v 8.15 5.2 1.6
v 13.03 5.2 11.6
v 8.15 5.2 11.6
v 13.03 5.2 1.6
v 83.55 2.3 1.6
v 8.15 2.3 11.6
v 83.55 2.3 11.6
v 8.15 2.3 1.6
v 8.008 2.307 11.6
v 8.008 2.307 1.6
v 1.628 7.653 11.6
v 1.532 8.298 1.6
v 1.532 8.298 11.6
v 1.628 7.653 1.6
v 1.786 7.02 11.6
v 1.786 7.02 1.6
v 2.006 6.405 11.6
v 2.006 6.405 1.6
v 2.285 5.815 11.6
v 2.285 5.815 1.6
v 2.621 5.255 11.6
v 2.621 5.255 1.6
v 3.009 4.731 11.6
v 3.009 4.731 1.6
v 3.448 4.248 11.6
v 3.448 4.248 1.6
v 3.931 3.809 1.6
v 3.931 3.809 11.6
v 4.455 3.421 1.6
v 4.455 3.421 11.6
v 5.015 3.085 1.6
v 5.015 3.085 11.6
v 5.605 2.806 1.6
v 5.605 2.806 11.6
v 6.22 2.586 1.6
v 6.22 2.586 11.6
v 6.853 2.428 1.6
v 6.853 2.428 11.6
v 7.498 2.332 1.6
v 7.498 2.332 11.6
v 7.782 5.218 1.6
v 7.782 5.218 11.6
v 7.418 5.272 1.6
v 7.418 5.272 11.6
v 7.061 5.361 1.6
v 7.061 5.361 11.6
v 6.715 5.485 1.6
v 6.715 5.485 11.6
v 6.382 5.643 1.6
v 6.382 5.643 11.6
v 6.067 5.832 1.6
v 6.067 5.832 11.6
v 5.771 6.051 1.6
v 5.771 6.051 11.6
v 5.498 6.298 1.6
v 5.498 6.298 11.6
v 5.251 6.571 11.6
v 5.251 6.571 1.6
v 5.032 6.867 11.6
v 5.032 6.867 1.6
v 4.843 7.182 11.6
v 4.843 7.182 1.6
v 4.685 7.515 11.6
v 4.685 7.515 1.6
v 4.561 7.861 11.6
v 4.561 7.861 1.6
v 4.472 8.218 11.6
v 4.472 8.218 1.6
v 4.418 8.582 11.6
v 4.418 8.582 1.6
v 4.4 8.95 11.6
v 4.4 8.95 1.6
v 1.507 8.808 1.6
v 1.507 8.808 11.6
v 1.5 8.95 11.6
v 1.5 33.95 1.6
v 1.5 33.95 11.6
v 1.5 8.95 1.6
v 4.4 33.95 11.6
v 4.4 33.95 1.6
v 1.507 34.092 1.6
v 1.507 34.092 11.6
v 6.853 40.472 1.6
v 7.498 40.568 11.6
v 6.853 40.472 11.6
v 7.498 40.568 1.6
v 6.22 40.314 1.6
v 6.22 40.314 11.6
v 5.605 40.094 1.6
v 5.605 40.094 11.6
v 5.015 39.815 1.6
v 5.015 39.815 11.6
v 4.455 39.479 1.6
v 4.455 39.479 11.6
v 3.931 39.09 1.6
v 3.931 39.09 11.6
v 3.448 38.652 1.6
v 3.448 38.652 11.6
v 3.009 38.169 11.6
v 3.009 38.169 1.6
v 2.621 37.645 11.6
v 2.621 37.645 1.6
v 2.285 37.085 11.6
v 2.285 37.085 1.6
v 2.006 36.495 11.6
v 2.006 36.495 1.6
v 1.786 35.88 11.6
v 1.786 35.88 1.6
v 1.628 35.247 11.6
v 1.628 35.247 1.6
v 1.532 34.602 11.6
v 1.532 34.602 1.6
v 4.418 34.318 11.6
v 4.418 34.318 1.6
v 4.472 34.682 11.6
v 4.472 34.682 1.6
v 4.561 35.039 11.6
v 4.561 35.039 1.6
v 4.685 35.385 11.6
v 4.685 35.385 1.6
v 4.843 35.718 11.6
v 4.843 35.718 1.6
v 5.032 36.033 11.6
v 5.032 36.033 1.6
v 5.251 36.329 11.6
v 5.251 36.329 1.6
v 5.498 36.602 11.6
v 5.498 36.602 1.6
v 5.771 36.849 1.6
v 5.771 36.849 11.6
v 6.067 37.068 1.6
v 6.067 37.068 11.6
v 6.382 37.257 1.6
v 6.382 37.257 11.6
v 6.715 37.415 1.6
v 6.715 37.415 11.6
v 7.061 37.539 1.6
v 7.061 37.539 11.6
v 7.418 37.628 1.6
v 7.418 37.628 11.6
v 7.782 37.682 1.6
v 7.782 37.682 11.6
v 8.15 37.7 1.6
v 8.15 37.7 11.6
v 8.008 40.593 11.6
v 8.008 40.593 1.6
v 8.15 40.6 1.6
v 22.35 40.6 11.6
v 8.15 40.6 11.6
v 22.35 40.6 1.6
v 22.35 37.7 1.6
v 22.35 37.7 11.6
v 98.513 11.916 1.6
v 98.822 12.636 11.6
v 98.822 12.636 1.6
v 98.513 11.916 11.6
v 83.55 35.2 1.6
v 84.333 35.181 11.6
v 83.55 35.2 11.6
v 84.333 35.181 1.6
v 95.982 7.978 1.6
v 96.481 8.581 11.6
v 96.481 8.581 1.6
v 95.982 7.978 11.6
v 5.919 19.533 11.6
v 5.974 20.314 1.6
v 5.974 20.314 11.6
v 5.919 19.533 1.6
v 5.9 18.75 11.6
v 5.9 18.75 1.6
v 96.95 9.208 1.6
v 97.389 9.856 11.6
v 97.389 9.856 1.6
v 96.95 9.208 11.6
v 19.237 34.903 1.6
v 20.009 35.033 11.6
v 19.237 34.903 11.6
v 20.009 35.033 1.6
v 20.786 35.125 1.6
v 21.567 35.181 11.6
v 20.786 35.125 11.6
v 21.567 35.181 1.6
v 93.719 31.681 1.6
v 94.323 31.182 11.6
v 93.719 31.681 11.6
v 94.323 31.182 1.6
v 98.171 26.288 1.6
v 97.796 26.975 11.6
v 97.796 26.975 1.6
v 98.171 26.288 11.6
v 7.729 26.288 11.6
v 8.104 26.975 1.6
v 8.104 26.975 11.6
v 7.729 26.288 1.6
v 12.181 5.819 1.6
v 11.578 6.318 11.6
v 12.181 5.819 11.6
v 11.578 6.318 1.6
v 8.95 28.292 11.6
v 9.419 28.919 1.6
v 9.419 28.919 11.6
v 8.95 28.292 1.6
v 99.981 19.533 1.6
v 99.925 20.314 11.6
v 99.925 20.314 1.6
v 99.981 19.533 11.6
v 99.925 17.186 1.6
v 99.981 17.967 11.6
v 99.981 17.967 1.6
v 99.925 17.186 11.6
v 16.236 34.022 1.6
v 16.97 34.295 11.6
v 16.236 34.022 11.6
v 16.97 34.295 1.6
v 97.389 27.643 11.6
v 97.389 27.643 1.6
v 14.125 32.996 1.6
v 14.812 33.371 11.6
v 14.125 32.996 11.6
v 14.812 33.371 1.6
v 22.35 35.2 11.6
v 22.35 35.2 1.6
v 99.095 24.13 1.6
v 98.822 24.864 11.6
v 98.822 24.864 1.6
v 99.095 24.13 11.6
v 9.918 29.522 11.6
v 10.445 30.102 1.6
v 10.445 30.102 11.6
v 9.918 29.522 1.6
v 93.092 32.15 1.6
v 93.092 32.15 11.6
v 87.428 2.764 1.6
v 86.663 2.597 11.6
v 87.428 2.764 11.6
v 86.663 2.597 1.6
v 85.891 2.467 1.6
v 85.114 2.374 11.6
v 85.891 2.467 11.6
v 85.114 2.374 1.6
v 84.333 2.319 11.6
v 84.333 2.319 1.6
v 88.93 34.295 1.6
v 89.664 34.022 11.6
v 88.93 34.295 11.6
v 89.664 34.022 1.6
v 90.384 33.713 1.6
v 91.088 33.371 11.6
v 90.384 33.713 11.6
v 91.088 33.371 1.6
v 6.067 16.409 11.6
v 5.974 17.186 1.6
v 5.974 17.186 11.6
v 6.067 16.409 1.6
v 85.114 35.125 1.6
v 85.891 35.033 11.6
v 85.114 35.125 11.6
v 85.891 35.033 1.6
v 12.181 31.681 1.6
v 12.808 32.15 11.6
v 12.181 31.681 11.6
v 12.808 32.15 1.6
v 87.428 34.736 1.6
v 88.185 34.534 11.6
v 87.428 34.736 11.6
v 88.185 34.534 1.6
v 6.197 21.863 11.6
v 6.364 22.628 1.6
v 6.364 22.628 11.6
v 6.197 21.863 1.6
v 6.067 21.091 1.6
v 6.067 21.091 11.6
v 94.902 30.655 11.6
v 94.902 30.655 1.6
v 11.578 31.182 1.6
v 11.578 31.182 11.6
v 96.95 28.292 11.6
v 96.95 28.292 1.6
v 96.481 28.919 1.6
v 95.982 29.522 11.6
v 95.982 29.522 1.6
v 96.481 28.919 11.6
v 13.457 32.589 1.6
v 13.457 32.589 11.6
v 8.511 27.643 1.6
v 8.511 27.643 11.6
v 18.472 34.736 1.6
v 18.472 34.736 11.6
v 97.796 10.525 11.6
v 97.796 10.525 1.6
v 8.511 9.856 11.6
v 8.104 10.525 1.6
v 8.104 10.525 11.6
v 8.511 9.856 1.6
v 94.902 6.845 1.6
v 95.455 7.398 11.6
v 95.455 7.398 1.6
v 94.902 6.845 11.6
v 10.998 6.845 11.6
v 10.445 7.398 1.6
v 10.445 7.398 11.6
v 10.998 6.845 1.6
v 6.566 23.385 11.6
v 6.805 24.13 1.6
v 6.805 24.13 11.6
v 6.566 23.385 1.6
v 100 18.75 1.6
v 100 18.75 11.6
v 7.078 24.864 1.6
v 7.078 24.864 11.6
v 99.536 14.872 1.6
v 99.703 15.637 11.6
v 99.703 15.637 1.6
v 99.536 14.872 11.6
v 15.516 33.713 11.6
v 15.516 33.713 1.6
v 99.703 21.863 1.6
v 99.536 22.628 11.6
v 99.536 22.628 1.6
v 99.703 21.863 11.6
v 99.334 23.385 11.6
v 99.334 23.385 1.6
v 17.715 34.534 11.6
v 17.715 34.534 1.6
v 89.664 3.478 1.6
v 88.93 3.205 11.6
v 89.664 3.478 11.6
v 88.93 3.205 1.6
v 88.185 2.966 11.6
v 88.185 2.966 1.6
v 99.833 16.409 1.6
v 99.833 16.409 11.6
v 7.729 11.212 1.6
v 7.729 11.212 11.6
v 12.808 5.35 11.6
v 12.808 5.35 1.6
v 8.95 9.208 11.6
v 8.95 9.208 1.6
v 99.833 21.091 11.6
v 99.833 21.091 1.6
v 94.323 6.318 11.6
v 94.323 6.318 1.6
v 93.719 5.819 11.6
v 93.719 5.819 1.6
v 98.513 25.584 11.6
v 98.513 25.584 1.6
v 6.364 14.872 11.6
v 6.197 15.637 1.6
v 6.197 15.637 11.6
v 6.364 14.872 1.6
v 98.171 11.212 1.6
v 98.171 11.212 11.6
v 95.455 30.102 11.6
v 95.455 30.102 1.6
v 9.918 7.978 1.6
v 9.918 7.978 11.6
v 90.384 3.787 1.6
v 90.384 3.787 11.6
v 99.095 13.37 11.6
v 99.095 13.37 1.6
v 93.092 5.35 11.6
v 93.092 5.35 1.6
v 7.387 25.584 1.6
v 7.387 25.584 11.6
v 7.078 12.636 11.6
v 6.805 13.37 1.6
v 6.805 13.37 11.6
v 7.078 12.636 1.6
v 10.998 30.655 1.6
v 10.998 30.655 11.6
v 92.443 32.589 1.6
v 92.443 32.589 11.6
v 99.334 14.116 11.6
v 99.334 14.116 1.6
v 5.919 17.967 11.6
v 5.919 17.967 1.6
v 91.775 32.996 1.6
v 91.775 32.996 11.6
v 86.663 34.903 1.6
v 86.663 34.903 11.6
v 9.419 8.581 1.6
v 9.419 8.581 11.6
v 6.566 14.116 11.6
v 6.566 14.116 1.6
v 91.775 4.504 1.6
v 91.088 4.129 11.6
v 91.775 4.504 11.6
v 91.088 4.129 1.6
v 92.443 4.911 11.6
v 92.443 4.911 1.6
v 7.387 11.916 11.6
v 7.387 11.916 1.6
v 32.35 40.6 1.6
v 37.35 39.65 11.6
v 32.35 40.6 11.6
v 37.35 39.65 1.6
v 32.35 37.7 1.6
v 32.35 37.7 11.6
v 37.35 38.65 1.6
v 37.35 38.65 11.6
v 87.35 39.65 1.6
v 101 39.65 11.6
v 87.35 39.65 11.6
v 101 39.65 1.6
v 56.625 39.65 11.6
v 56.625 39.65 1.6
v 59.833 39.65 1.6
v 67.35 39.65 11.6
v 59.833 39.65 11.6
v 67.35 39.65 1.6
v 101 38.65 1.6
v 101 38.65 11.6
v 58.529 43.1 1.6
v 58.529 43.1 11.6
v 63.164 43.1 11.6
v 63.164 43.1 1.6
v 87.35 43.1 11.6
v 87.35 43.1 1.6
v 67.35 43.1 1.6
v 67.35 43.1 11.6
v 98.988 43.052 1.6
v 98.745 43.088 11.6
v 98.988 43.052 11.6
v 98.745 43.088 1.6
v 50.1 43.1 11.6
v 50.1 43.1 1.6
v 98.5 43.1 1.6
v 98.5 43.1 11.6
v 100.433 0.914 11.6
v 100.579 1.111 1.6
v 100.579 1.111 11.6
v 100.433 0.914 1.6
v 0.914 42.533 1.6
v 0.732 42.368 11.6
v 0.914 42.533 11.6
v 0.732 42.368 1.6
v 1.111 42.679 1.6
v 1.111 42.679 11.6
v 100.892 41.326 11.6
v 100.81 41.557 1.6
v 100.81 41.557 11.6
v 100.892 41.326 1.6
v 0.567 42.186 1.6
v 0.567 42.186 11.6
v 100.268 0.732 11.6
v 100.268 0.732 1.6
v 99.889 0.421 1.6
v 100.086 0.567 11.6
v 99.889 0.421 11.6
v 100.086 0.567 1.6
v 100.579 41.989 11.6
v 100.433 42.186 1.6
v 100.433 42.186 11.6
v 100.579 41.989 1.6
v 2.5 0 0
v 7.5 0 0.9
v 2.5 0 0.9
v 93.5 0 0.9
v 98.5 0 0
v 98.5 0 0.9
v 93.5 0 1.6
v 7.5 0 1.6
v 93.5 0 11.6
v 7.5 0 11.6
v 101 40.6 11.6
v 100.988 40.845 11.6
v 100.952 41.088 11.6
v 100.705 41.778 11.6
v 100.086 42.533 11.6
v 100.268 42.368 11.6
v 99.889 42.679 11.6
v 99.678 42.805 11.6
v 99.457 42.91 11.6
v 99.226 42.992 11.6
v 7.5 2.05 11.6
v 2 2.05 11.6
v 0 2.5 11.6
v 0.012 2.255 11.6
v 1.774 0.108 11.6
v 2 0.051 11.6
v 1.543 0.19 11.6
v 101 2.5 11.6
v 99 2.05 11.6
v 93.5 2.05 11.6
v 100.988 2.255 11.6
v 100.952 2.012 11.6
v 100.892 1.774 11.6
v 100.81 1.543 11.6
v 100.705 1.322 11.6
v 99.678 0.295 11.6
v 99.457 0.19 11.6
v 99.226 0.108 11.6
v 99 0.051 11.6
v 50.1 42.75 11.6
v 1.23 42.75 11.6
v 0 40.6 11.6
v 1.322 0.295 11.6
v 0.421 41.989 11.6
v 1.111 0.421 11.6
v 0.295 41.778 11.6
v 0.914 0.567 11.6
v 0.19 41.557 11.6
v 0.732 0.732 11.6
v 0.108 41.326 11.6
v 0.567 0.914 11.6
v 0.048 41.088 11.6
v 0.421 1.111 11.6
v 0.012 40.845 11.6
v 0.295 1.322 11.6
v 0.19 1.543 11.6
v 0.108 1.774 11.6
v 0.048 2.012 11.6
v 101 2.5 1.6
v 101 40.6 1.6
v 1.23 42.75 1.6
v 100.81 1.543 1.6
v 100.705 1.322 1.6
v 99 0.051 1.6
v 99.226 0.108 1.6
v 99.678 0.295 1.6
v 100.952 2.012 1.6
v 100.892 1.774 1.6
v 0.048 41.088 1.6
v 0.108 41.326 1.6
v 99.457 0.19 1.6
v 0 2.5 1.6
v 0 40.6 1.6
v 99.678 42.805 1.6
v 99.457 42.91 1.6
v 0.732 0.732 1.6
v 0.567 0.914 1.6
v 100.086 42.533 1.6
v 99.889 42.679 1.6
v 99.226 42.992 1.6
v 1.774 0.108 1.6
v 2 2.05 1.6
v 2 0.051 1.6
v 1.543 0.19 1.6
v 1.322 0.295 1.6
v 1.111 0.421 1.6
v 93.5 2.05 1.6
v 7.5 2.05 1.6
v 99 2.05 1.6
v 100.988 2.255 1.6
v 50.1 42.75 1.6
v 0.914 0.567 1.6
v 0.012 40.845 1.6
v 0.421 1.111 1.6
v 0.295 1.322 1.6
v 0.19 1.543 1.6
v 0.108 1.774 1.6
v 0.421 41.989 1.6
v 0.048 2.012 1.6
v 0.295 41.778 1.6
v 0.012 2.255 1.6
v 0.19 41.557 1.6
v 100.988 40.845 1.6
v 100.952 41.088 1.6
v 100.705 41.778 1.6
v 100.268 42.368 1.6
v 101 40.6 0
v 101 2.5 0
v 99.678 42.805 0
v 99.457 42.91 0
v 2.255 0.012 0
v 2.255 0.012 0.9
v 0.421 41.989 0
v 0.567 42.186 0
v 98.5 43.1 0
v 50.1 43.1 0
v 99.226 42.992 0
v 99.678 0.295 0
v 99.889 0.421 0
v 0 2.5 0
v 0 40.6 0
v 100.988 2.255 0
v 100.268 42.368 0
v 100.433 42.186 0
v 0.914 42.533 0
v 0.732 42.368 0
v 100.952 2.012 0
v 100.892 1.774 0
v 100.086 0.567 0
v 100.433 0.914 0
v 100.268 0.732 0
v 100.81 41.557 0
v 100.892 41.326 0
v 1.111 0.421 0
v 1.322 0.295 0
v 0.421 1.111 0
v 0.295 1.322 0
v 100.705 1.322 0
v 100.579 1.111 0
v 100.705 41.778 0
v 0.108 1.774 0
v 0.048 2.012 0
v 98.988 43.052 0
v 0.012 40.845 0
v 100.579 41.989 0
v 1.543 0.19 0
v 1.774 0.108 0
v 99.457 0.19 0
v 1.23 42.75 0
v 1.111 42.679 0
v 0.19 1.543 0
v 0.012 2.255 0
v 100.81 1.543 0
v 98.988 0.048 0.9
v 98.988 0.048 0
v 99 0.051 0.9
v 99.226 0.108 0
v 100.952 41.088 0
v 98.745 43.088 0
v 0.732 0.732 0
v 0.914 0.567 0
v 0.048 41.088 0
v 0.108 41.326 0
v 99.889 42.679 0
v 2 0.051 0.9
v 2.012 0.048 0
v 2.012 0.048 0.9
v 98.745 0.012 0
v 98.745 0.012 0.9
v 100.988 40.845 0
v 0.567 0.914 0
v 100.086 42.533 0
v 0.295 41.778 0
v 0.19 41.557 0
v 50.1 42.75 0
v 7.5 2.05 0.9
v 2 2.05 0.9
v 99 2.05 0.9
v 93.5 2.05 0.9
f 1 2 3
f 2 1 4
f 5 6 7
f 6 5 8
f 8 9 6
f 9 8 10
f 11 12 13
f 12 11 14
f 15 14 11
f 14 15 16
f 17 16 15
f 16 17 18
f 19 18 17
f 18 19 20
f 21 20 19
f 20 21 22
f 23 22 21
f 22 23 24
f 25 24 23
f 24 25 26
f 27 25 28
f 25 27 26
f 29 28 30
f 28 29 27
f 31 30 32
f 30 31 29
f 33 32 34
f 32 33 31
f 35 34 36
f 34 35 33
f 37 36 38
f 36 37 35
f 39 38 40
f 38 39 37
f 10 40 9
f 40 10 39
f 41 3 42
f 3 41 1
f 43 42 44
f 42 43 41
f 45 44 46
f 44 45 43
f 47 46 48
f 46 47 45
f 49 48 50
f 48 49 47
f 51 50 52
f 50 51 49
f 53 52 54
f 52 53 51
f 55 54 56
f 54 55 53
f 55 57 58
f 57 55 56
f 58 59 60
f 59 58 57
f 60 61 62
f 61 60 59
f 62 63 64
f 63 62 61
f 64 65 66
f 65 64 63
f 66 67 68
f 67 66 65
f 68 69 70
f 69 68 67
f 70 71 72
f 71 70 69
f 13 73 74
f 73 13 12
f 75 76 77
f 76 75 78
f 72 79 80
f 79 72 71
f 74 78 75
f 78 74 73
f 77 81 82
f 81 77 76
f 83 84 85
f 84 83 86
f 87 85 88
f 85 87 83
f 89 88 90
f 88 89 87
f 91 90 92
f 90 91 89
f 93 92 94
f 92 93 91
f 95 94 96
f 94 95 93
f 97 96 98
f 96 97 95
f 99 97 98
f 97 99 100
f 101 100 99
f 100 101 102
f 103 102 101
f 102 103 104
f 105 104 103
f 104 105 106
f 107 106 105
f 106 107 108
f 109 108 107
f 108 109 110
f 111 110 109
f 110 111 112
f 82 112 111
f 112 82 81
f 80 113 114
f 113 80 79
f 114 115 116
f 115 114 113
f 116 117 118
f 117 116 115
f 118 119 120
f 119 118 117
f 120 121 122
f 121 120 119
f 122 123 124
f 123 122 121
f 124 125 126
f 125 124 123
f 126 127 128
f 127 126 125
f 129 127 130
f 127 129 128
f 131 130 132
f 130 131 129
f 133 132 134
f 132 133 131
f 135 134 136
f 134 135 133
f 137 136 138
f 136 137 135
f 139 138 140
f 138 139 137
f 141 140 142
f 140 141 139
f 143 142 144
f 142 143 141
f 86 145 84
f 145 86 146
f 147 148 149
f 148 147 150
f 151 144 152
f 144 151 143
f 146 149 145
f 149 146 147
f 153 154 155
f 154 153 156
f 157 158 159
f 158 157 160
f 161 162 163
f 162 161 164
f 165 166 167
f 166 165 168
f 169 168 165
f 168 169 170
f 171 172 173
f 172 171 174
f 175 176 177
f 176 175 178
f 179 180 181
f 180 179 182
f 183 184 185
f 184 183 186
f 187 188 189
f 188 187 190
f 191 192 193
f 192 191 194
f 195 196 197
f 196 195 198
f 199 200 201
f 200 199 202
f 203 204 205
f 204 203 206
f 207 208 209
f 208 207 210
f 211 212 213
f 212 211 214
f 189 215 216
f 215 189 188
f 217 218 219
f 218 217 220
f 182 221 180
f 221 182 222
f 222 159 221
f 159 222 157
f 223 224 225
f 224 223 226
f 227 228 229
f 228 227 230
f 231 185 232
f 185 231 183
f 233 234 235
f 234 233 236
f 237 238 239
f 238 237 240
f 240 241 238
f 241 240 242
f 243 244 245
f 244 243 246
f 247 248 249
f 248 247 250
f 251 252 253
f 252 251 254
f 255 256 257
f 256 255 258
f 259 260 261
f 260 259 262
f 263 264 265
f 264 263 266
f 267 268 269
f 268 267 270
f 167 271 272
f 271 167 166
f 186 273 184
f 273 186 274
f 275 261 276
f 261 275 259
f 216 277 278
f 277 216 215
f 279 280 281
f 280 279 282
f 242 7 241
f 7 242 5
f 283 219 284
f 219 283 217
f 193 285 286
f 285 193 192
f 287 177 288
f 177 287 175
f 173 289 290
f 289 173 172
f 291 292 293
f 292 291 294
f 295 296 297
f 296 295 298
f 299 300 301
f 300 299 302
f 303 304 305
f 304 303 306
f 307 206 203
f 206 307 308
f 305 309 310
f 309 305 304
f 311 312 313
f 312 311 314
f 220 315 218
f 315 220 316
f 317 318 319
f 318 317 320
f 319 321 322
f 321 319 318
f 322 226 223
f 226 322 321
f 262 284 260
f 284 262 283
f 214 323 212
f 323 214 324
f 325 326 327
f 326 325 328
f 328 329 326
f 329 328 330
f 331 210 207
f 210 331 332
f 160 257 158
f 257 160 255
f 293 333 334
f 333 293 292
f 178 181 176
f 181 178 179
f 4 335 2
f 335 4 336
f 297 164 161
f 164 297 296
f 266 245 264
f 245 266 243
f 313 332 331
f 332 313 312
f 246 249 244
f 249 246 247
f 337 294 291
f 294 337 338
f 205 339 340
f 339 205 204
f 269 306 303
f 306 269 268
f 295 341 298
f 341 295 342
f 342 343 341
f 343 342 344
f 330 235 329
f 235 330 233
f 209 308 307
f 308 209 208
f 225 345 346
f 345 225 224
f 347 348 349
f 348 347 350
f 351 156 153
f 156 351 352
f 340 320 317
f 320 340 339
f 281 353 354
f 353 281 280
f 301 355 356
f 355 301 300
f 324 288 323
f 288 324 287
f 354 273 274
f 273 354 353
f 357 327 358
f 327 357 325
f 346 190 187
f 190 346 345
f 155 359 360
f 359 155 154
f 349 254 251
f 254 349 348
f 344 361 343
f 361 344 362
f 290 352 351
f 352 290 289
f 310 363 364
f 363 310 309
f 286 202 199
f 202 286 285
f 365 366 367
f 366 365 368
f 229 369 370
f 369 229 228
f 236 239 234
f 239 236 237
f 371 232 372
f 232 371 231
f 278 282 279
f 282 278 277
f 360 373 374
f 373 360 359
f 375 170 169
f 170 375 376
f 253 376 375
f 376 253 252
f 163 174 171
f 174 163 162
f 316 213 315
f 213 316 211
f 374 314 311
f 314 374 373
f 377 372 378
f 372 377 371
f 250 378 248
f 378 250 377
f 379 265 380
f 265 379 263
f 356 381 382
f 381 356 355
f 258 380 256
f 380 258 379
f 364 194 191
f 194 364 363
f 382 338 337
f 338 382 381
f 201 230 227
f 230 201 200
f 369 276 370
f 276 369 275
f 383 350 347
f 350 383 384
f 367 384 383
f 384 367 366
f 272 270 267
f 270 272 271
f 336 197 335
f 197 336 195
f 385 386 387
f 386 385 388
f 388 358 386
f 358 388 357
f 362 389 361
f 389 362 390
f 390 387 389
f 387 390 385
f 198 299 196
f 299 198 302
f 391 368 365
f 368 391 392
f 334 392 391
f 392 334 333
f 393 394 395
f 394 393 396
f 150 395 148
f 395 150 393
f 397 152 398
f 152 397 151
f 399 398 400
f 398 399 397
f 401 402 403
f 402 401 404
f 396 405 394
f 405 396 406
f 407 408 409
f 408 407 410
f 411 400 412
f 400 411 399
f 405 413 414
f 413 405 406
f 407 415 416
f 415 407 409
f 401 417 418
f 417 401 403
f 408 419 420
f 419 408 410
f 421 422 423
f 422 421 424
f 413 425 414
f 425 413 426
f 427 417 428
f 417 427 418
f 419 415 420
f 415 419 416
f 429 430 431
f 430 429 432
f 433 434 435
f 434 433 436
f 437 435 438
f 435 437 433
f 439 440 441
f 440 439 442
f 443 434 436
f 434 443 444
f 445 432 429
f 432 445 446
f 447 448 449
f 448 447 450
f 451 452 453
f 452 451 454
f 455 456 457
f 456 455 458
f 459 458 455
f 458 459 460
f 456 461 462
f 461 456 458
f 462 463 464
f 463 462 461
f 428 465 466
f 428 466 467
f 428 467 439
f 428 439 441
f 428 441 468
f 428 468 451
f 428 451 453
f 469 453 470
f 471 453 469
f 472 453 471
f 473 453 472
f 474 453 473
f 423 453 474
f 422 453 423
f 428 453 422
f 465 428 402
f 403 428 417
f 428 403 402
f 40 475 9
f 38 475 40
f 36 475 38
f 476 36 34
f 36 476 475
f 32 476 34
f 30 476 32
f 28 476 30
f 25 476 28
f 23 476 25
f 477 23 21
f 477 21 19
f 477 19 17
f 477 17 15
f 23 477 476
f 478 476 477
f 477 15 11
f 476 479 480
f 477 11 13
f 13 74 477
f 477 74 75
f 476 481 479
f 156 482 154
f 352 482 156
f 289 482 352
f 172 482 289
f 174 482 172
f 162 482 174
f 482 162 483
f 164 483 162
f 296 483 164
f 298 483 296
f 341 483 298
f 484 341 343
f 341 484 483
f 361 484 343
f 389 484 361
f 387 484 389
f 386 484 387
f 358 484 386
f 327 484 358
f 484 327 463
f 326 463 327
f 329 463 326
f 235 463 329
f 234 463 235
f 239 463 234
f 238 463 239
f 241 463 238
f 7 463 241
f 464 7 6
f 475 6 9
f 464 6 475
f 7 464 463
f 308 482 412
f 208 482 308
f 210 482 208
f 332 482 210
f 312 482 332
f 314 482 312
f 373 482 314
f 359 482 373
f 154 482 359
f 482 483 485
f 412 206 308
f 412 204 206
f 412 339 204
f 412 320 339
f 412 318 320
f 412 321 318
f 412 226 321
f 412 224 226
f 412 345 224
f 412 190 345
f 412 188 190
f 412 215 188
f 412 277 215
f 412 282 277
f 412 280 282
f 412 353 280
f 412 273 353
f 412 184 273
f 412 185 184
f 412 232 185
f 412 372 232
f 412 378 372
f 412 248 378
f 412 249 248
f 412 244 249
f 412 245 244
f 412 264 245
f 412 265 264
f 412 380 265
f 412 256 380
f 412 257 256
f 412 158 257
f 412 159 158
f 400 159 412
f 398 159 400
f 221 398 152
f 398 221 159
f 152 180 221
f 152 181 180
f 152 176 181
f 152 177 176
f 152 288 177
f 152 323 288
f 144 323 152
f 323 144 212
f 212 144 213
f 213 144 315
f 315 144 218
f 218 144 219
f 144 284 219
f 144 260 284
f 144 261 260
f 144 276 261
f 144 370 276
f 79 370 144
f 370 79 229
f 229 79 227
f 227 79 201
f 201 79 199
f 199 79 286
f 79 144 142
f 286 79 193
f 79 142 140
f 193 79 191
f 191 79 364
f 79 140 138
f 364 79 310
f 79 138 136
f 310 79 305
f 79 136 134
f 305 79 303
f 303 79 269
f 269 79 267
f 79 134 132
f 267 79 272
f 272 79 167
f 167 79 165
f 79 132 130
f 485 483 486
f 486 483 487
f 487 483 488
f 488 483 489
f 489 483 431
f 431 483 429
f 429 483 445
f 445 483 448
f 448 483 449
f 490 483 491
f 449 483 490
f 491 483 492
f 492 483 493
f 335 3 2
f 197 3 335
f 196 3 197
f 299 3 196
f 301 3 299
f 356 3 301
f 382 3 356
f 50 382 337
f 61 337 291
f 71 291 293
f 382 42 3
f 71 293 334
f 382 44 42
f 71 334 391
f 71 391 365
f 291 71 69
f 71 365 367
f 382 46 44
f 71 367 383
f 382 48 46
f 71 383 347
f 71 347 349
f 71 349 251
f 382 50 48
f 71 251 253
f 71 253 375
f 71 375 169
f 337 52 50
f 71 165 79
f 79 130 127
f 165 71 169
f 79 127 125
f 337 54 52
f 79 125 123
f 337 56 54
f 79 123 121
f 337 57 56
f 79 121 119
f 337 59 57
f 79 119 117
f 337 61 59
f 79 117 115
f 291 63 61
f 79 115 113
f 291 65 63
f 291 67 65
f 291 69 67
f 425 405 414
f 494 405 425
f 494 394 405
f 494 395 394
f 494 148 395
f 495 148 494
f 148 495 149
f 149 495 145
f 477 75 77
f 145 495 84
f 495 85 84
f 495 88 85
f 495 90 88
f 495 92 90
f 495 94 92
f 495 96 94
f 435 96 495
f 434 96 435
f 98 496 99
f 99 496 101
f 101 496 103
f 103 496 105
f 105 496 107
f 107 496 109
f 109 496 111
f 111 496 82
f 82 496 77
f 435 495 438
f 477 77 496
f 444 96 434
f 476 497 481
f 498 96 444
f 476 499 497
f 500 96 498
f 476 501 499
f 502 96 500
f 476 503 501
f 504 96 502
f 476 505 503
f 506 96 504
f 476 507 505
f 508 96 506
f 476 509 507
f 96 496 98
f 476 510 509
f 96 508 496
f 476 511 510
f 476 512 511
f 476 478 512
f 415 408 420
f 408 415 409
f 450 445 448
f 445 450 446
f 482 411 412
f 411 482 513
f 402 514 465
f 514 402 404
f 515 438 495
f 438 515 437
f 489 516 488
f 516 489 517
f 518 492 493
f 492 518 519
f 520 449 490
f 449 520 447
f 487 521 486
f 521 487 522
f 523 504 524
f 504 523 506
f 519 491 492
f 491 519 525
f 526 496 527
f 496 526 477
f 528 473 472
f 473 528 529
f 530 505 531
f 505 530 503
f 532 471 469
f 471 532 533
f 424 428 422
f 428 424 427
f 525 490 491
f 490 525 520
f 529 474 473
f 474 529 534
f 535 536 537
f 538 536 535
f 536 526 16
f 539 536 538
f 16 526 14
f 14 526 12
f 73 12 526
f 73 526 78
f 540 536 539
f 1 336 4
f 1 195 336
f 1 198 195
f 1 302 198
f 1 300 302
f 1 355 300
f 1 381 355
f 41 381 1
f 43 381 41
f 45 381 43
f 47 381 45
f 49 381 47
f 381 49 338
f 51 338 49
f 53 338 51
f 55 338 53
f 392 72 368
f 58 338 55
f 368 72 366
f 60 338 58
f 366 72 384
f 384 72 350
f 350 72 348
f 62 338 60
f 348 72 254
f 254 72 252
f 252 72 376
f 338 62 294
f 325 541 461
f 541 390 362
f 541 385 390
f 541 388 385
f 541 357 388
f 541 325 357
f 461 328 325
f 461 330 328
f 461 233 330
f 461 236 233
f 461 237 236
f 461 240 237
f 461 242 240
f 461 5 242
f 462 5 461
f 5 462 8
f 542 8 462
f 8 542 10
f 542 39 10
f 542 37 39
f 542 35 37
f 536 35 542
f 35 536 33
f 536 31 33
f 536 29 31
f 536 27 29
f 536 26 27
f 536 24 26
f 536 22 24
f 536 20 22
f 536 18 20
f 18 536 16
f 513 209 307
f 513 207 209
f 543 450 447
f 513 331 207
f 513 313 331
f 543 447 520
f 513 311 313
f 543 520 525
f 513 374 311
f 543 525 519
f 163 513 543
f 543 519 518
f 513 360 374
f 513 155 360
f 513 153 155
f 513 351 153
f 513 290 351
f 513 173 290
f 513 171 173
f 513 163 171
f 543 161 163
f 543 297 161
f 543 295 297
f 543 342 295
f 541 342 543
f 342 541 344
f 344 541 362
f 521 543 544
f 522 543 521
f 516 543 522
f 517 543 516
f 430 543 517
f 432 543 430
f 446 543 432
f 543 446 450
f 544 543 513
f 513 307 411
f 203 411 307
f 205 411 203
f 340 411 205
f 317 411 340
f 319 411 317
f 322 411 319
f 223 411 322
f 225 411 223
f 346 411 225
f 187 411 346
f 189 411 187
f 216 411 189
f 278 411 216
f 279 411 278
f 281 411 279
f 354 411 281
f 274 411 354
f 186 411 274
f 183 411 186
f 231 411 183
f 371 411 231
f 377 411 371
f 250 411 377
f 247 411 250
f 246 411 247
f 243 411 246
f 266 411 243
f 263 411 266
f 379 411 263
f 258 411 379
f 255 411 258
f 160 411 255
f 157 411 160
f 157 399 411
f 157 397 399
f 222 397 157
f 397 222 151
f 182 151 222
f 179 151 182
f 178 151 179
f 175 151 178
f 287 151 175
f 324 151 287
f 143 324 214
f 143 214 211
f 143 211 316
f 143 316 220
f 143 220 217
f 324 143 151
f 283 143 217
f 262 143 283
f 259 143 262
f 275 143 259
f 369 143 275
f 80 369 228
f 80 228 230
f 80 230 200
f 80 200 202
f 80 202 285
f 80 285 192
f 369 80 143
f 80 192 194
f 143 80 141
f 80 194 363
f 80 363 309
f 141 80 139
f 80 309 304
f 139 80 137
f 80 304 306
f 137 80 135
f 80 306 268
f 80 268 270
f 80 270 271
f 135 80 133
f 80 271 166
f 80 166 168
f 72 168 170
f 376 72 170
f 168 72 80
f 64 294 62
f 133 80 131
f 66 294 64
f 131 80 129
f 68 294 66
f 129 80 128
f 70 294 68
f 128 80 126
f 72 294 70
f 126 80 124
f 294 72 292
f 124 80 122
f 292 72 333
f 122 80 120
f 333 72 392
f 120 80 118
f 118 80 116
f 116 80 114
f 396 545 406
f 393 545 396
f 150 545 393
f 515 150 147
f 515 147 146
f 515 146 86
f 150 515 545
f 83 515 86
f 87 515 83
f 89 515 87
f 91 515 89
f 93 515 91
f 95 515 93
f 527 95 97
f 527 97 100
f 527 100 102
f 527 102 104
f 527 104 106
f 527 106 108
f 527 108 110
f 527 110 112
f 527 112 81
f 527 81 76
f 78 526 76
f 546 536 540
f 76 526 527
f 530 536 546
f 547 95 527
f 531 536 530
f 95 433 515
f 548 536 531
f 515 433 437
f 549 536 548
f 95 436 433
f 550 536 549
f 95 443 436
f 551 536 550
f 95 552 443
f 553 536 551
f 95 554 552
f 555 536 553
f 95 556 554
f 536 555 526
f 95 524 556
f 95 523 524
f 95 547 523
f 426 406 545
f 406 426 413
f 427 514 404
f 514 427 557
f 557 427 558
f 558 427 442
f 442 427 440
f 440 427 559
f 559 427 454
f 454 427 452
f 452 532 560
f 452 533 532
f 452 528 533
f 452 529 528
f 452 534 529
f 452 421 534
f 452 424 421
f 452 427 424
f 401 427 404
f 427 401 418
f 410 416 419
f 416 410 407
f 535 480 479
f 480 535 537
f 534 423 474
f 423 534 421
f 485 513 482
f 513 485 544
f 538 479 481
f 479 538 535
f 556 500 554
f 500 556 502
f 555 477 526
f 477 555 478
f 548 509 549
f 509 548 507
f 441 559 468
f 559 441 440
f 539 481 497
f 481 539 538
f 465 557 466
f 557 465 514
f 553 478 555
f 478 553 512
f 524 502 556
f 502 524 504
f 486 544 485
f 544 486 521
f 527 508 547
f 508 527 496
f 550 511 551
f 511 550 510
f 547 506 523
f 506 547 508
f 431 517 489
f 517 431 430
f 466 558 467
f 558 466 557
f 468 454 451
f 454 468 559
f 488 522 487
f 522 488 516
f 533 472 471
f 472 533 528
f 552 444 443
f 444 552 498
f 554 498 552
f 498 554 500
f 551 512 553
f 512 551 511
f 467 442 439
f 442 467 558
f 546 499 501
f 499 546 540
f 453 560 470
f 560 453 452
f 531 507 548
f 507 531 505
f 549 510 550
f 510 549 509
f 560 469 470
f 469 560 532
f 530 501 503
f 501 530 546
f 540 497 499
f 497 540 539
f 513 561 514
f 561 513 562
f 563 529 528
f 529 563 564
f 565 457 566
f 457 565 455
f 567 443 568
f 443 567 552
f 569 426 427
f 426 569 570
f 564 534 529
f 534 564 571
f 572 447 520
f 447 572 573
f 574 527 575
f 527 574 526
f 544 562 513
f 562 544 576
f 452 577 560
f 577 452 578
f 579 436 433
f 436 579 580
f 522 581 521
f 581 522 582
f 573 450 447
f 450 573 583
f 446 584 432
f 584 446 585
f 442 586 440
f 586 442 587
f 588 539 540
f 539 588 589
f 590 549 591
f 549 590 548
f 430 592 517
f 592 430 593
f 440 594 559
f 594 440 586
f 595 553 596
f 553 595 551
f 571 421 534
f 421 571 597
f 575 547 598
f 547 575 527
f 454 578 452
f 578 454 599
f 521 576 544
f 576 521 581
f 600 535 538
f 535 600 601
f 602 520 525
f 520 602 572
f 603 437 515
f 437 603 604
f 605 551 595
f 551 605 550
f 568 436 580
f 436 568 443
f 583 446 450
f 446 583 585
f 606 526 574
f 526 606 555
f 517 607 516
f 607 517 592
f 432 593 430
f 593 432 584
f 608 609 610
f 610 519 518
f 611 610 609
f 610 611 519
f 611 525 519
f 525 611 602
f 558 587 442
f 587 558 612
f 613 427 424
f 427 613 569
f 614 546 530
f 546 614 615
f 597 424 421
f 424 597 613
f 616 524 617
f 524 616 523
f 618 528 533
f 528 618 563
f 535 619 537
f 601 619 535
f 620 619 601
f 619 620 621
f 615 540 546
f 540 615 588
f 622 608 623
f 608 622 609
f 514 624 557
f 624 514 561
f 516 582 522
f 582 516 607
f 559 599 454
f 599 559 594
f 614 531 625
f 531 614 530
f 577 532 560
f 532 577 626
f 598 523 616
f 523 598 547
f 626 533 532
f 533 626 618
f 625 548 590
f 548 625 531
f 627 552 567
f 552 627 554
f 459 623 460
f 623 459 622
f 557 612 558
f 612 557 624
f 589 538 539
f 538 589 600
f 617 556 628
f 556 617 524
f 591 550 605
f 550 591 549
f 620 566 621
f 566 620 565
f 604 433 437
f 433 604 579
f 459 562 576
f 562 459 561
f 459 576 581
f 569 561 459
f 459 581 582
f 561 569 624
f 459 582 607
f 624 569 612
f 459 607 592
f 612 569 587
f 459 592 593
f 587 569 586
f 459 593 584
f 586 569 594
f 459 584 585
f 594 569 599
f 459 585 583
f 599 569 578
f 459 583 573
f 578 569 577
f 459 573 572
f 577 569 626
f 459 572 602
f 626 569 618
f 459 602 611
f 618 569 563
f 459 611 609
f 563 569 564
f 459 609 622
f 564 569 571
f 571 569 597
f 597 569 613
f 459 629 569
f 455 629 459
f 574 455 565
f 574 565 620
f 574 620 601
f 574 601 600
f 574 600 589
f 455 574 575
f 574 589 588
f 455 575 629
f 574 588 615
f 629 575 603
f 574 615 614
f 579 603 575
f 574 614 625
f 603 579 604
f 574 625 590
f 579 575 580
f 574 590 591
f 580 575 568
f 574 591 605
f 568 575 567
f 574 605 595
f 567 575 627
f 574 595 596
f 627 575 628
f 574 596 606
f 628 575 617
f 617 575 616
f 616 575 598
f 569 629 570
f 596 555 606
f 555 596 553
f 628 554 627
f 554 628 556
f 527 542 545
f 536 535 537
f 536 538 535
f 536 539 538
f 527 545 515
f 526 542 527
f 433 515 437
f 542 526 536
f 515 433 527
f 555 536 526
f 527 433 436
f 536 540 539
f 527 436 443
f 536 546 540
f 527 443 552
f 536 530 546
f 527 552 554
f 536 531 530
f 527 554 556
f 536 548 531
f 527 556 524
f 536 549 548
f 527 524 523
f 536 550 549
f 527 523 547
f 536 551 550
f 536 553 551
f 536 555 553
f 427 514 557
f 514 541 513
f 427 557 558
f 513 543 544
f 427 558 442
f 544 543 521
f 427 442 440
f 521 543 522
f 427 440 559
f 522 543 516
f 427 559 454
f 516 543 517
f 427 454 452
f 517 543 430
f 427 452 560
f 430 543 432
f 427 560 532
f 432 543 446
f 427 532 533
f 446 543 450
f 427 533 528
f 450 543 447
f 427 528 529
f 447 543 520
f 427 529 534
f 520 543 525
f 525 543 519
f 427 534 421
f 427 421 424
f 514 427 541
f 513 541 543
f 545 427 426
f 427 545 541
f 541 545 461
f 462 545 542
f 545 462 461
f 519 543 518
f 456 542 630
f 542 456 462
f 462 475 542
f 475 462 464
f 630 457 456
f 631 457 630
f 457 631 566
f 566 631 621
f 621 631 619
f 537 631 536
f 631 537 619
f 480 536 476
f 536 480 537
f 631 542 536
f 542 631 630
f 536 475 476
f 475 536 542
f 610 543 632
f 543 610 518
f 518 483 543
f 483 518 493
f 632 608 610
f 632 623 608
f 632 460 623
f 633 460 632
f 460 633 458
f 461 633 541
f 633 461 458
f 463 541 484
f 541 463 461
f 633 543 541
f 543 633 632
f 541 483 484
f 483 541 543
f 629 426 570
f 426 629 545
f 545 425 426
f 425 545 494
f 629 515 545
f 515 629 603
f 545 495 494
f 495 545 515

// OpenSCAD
module Path(){
  translate([0, 0, -0.002])union(){
      translate([0, 0, -0.002])hull(){
          translate([0, 0, -0.002])translate([0, 0, 0])cylinder(d=2.9,h=11.047999999999998,$fn=64);
          translate([0, 0, -0.002])translate([-14.200000000000003, 0, 0])cylinder(d=2.9,h=11.047999999999998,$fn=64);
        }

      translate([0, 0, -0.002])translate([-14.200000000000003, 0, 0])linear_extrude(height=11)translate([0, 5.2, 0])rotate([0, 0, 180])intersection(){
                  difference(){
                    circle(d=13.3);
                    circle(d=7.5);
                  }

                  translate([0, 0, -0.1])polygon(points=[[0, 0], [0, 13.3], [13.3, 8.143901214329899e-16]]);
                }

      translate([0, 0, -0.002])hull(){
          translate([0, 0, -0.002])translate([-19.400000000000002, 5.199999999999998, 0])cylinder(d=2.9,h=11.047999999999998,$fn=64);
          translate([0, 0, -0.002])translate([-19.400000000000002, 30.200000000000006, 0])cylinder(d=2.9,h=11.047999999999998,$fn=64);
        }

      translate([0, 0, -0.002])translate([-19.400000000000002, 30.200000000000006, 0])linear_extrude(height=11)translate([5.2, 0, 0])rotate([0, 0, 90])intersection(){
                  difference(){
                    circle(d=13.3);
                    circle(d=7.5);
                  }

                  translate([0, 0, -0.1])polygon(points=[[0, 0], [0, 13.3], [13.3, 8.143901214329899e-16]]);
                }

      translate([0, 0, -0.002])hull(){
          translate([0, 0, -0.002])translate([-14.200000000000003, 35.400000000000006, 0])cylinder(d=2.9,h=11.047999999999998,$fn=64);
          translate([0, 0, -0.002])translate([0, 35.400000000000006, 0])cylinder(d=2.9,h=11.047999999999998,$fn=64);
        }

    }
}
module SmdDispenser(){
  difference(){
    color("pink")union(){
        translate([0, 0, 1.6])difference(){
            translate([0, 0, 0])union()translate([2.5, 2.5, 0])hull(){
                    cylinder(d=5,h=10,$fn=64);
                    translate([96, 0, 0])cylinder(d=5,h=10,$fn=64);
                    translate([0, 38.1, 0])cylinder(d=5,h=10,$fn=64);
                    translate([96, 38.1, 0])cylinder(d=5,h=10,$fn=64);
                  }

            translate([0, 0, -0.002])translate([1.5, 2.3, 0])translate([20.85, 36.85000000000001, 0])union(){
                    translate([0, 0, -0.002])translate([0, -35.400000000000006, 0])union(){
                          translate([0, 0, -0.002])Path();
                          translate([0, 15.000000000000004, 0])hull(){
                              translate([0, 0, -0.1])cylinder(d=32.900000000000006,h=11.207999999999998,$fn=132);
                              translate([0, 0, -0.1])translate([61.19999999999999, 0, 0])cylinder(d=32.900000000000006,h=11.407999999999998,$fn=132);
                            }

                        }

                    translate([0, 0, -0.004])hull(){
                        translate([0, -1.45, 0])translate([0, 0, -0.004])cube([10, 2.9, 10.015999999999998]);
                        translate([0, -0.5, 0])translate([0, 0, -0.004])translate([5, 0, 0])cube([10, 1.0, 10.015999999999998]);
                      }

                    translate([0, -0.5, 0])translate([0, 0, -0.004])color("blue")cube([101, 1.0, 10.015999999999998]);
                    translate([0, 0, -0.004])translate([37, 0, 0])hull(){
                          translate([0, 0, 0])translate([0, 0, -0.004])translate([1, 7.25, 0])cube([6, 0.001, 10.015999999999998]);
                          translate([0, 0, 0])translate([0, 0, -0.004])translate([-3, 0, 0])cube([3, 0.001, 10.015999999999998]);
                        }

                    translate([0, 0, 0])translate([0, 0, -0.1])translate([45, 0, 0])cube([20, 8.7, 11.207999999999998]);
                  }

          }

        translate([0, 0, 0])union()translate([2.5, 2.5, 0])hull(){
                cylinder(d=5,h=1.6,$fn=64);
                translate([96, 0, 0])cylinder(d=5,h=1.6,$fn=64);
                translate([0, 38.1, 0])cylinder(d=5,h=1.6,$fn=64);
                translate([96, 38.1, 0])cylinder(d=5,h=1.6,$fn=64);
              }

      }

    translate([-25.1, -0.25, 0])translate([0, 0, -0.1])translate([25, 43, 0])color("silver")cube([50.2, 0.5, 12.799999999999999]);
    translate([0, 0, 1])color("MediumVioletRed")union(){
          translate([0, 0, 0])translate([0, 0, -0.1])translate([2, 0, 0])cube([5.5, 2.05, 12.799999999999999]);
          translate([0, 0, 0])translate([0, 0, -0.1])translate([93.5, 0, 0])cube([5.5, 2.05, 12.999999999999998]);
        }

  }
}
$fn=64;
SmdDispenser();
